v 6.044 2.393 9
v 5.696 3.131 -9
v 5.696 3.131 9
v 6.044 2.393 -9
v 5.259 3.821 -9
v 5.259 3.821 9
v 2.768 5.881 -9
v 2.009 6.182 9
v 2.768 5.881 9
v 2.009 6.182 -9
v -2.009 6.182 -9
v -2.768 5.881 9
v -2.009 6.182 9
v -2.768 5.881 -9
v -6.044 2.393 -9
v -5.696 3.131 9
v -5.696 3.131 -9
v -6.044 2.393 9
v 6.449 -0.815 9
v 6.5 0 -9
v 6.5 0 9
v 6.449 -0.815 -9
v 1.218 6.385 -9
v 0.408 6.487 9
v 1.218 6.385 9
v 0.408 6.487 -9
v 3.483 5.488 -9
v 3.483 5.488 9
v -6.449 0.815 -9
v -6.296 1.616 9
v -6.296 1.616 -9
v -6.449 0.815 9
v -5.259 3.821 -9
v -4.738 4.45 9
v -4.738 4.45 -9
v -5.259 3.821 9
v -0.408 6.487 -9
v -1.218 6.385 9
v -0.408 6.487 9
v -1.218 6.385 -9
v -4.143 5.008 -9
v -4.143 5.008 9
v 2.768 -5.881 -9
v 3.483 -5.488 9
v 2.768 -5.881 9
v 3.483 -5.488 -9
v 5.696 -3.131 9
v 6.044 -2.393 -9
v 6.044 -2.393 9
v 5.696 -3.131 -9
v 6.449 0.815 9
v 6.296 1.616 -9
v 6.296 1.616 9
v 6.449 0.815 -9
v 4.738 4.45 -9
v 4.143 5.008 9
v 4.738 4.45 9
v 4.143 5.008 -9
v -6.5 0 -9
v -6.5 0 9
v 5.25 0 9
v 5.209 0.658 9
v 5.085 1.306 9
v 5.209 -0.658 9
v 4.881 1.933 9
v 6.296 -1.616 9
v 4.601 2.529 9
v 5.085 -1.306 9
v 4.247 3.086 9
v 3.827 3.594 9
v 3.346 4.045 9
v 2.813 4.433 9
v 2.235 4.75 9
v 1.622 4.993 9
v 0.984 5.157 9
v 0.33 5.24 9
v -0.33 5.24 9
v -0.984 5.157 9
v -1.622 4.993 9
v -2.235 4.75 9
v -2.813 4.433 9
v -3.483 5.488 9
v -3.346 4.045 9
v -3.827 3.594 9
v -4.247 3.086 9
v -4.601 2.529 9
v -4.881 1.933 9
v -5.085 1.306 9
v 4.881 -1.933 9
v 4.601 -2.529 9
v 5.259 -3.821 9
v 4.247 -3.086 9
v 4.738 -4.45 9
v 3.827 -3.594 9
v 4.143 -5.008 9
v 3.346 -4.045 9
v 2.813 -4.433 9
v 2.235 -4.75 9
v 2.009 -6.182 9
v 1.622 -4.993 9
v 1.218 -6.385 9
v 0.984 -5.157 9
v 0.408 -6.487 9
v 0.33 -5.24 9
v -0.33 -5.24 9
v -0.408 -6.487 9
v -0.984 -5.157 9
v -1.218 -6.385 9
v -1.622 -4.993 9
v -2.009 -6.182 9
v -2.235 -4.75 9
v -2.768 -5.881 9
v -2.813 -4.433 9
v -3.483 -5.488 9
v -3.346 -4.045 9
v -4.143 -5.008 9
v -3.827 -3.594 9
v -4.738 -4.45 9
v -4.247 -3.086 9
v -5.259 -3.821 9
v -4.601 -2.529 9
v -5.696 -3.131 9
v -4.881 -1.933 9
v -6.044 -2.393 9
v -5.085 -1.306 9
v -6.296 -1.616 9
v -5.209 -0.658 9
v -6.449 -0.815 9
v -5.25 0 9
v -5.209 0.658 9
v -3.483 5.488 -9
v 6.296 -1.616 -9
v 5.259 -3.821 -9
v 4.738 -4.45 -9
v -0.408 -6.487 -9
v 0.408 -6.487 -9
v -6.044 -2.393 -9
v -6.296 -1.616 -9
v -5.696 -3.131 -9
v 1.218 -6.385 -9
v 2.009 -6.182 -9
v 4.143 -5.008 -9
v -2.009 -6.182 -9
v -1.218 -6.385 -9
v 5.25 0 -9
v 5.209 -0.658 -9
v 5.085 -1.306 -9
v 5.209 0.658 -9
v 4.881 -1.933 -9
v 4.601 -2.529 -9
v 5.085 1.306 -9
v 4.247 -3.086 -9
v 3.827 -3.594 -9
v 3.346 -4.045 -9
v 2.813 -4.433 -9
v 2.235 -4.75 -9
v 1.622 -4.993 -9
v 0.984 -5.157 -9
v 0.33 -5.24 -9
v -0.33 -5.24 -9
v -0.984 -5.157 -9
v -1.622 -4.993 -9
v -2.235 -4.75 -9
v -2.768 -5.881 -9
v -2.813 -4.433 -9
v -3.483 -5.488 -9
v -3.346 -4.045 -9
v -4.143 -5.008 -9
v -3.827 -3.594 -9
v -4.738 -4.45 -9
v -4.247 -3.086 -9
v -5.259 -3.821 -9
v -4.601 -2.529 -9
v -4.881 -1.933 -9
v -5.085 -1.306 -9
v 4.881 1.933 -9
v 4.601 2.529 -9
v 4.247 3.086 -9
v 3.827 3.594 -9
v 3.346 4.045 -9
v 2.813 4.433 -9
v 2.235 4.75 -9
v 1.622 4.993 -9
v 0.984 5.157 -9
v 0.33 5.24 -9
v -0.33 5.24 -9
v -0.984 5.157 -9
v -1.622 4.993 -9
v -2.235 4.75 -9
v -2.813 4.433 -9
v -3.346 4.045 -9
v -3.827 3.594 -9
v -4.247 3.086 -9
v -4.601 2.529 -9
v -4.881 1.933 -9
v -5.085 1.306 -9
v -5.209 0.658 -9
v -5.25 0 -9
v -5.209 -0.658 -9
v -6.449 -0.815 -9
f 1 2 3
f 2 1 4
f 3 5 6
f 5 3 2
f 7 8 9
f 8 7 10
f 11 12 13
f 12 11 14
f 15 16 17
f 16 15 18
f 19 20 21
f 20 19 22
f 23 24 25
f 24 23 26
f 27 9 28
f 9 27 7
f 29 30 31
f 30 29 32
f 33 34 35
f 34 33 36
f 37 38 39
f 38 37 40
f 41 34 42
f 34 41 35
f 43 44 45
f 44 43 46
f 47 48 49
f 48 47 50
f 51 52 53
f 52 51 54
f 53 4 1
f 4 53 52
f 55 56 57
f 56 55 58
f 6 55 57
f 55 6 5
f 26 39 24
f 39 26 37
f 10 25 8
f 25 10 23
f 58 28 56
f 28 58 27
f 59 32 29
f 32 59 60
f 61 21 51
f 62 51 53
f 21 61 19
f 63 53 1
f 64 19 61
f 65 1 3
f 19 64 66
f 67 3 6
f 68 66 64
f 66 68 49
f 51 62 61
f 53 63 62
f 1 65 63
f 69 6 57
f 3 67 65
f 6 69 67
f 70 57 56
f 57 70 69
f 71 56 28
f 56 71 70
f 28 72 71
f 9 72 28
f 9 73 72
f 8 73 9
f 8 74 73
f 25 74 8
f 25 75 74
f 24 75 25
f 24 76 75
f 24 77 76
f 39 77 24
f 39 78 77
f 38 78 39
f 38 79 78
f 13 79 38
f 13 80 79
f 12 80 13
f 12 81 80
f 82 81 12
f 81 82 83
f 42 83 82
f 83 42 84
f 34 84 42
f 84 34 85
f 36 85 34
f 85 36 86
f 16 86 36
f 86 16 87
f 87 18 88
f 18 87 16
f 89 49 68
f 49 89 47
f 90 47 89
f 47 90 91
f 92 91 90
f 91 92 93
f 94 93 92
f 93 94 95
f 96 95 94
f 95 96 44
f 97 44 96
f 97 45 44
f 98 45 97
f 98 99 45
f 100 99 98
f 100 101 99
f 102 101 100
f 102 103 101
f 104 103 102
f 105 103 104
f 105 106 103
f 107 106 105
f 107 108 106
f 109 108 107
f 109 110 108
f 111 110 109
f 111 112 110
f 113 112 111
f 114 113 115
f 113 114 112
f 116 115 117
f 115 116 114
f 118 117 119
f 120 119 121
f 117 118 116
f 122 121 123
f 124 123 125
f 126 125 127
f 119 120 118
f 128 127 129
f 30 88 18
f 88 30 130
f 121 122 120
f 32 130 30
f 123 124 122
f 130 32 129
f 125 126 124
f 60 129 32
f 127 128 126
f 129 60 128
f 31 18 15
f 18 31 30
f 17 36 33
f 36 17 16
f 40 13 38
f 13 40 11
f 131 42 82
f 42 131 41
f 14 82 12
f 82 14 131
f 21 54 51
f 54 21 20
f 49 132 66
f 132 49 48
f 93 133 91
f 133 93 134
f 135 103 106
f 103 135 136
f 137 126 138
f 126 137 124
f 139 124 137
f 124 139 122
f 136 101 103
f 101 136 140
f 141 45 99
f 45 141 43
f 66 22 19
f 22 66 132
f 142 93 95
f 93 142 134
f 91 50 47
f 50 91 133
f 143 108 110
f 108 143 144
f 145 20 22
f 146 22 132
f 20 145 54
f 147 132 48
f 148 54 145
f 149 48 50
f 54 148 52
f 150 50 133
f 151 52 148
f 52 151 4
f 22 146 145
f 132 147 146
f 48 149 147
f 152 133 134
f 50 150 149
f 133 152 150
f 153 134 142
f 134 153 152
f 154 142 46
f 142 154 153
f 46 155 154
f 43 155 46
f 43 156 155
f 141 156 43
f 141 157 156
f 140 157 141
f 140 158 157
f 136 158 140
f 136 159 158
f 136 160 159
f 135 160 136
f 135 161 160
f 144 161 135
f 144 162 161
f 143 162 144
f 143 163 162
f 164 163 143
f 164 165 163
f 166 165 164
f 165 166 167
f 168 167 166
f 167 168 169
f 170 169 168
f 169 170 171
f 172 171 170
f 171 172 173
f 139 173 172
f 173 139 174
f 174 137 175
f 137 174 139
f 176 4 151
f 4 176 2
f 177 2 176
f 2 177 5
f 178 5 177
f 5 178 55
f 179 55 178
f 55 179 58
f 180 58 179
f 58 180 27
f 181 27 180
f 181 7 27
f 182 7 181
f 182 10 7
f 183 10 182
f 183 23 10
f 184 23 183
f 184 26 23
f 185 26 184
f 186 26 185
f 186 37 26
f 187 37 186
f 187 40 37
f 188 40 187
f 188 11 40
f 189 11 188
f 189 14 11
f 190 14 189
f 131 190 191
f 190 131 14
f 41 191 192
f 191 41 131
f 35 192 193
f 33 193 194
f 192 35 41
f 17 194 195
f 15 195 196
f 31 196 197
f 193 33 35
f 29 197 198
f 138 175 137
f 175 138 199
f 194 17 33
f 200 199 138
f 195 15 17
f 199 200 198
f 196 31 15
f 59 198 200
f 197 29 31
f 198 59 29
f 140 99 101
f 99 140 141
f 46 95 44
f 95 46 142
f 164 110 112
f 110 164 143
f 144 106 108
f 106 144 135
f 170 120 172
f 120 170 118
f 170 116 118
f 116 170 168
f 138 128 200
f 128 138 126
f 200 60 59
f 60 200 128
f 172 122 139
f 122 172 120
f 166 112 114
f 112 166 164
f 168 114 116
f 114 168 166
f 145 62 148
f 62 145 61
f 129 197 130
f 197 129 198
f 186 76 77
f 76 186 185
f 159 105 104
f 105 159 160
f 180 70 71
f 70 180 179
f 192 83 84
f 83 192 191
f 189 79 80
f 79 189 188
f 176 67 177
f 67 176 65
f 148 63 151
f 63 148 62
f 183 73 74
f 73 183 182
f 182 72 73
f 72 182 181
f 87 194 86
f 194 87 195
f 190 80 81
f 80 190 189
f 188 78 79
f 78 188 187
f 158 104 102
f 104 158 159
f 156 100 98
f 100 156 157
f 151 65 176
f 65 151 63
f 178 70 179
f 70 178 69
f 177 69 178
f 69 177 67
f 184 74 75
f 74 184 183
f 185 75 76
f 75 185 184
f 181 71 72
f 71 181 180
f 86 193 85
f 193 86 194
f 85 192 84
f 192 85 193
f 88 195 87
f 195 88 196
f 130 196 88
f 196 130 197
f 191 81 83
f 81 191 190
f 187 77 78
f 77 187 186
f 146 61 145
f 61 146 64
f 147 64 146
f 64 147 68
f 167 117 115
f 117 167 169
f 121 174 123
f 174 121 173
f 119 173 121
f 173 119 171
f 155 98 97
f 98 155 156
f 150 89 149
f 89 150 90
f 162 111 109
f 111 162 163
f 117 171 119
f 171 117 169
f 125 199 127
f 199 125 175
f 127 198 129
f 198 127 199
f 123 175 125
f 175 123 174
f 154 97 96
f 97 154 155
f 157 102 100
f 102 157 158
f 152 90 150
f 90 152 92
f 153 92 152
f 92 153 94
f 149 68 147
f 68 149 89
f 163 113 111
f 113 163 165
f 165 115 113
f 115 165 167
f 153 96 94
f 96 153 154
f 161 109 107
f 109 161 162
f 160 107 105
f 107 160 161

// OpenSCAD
$fn = 50;


difference() {
	union() {
		translate(v = [0, 0, -9.0000000000]) {
			cylinder(h = 18, r = 6.5000000000);
		}
	}
	union() {
		translate(v = [0, 0, -100.0000000000]) {
			cylinder(h = 200, r = 5.2500000000);
		}
	}
}
